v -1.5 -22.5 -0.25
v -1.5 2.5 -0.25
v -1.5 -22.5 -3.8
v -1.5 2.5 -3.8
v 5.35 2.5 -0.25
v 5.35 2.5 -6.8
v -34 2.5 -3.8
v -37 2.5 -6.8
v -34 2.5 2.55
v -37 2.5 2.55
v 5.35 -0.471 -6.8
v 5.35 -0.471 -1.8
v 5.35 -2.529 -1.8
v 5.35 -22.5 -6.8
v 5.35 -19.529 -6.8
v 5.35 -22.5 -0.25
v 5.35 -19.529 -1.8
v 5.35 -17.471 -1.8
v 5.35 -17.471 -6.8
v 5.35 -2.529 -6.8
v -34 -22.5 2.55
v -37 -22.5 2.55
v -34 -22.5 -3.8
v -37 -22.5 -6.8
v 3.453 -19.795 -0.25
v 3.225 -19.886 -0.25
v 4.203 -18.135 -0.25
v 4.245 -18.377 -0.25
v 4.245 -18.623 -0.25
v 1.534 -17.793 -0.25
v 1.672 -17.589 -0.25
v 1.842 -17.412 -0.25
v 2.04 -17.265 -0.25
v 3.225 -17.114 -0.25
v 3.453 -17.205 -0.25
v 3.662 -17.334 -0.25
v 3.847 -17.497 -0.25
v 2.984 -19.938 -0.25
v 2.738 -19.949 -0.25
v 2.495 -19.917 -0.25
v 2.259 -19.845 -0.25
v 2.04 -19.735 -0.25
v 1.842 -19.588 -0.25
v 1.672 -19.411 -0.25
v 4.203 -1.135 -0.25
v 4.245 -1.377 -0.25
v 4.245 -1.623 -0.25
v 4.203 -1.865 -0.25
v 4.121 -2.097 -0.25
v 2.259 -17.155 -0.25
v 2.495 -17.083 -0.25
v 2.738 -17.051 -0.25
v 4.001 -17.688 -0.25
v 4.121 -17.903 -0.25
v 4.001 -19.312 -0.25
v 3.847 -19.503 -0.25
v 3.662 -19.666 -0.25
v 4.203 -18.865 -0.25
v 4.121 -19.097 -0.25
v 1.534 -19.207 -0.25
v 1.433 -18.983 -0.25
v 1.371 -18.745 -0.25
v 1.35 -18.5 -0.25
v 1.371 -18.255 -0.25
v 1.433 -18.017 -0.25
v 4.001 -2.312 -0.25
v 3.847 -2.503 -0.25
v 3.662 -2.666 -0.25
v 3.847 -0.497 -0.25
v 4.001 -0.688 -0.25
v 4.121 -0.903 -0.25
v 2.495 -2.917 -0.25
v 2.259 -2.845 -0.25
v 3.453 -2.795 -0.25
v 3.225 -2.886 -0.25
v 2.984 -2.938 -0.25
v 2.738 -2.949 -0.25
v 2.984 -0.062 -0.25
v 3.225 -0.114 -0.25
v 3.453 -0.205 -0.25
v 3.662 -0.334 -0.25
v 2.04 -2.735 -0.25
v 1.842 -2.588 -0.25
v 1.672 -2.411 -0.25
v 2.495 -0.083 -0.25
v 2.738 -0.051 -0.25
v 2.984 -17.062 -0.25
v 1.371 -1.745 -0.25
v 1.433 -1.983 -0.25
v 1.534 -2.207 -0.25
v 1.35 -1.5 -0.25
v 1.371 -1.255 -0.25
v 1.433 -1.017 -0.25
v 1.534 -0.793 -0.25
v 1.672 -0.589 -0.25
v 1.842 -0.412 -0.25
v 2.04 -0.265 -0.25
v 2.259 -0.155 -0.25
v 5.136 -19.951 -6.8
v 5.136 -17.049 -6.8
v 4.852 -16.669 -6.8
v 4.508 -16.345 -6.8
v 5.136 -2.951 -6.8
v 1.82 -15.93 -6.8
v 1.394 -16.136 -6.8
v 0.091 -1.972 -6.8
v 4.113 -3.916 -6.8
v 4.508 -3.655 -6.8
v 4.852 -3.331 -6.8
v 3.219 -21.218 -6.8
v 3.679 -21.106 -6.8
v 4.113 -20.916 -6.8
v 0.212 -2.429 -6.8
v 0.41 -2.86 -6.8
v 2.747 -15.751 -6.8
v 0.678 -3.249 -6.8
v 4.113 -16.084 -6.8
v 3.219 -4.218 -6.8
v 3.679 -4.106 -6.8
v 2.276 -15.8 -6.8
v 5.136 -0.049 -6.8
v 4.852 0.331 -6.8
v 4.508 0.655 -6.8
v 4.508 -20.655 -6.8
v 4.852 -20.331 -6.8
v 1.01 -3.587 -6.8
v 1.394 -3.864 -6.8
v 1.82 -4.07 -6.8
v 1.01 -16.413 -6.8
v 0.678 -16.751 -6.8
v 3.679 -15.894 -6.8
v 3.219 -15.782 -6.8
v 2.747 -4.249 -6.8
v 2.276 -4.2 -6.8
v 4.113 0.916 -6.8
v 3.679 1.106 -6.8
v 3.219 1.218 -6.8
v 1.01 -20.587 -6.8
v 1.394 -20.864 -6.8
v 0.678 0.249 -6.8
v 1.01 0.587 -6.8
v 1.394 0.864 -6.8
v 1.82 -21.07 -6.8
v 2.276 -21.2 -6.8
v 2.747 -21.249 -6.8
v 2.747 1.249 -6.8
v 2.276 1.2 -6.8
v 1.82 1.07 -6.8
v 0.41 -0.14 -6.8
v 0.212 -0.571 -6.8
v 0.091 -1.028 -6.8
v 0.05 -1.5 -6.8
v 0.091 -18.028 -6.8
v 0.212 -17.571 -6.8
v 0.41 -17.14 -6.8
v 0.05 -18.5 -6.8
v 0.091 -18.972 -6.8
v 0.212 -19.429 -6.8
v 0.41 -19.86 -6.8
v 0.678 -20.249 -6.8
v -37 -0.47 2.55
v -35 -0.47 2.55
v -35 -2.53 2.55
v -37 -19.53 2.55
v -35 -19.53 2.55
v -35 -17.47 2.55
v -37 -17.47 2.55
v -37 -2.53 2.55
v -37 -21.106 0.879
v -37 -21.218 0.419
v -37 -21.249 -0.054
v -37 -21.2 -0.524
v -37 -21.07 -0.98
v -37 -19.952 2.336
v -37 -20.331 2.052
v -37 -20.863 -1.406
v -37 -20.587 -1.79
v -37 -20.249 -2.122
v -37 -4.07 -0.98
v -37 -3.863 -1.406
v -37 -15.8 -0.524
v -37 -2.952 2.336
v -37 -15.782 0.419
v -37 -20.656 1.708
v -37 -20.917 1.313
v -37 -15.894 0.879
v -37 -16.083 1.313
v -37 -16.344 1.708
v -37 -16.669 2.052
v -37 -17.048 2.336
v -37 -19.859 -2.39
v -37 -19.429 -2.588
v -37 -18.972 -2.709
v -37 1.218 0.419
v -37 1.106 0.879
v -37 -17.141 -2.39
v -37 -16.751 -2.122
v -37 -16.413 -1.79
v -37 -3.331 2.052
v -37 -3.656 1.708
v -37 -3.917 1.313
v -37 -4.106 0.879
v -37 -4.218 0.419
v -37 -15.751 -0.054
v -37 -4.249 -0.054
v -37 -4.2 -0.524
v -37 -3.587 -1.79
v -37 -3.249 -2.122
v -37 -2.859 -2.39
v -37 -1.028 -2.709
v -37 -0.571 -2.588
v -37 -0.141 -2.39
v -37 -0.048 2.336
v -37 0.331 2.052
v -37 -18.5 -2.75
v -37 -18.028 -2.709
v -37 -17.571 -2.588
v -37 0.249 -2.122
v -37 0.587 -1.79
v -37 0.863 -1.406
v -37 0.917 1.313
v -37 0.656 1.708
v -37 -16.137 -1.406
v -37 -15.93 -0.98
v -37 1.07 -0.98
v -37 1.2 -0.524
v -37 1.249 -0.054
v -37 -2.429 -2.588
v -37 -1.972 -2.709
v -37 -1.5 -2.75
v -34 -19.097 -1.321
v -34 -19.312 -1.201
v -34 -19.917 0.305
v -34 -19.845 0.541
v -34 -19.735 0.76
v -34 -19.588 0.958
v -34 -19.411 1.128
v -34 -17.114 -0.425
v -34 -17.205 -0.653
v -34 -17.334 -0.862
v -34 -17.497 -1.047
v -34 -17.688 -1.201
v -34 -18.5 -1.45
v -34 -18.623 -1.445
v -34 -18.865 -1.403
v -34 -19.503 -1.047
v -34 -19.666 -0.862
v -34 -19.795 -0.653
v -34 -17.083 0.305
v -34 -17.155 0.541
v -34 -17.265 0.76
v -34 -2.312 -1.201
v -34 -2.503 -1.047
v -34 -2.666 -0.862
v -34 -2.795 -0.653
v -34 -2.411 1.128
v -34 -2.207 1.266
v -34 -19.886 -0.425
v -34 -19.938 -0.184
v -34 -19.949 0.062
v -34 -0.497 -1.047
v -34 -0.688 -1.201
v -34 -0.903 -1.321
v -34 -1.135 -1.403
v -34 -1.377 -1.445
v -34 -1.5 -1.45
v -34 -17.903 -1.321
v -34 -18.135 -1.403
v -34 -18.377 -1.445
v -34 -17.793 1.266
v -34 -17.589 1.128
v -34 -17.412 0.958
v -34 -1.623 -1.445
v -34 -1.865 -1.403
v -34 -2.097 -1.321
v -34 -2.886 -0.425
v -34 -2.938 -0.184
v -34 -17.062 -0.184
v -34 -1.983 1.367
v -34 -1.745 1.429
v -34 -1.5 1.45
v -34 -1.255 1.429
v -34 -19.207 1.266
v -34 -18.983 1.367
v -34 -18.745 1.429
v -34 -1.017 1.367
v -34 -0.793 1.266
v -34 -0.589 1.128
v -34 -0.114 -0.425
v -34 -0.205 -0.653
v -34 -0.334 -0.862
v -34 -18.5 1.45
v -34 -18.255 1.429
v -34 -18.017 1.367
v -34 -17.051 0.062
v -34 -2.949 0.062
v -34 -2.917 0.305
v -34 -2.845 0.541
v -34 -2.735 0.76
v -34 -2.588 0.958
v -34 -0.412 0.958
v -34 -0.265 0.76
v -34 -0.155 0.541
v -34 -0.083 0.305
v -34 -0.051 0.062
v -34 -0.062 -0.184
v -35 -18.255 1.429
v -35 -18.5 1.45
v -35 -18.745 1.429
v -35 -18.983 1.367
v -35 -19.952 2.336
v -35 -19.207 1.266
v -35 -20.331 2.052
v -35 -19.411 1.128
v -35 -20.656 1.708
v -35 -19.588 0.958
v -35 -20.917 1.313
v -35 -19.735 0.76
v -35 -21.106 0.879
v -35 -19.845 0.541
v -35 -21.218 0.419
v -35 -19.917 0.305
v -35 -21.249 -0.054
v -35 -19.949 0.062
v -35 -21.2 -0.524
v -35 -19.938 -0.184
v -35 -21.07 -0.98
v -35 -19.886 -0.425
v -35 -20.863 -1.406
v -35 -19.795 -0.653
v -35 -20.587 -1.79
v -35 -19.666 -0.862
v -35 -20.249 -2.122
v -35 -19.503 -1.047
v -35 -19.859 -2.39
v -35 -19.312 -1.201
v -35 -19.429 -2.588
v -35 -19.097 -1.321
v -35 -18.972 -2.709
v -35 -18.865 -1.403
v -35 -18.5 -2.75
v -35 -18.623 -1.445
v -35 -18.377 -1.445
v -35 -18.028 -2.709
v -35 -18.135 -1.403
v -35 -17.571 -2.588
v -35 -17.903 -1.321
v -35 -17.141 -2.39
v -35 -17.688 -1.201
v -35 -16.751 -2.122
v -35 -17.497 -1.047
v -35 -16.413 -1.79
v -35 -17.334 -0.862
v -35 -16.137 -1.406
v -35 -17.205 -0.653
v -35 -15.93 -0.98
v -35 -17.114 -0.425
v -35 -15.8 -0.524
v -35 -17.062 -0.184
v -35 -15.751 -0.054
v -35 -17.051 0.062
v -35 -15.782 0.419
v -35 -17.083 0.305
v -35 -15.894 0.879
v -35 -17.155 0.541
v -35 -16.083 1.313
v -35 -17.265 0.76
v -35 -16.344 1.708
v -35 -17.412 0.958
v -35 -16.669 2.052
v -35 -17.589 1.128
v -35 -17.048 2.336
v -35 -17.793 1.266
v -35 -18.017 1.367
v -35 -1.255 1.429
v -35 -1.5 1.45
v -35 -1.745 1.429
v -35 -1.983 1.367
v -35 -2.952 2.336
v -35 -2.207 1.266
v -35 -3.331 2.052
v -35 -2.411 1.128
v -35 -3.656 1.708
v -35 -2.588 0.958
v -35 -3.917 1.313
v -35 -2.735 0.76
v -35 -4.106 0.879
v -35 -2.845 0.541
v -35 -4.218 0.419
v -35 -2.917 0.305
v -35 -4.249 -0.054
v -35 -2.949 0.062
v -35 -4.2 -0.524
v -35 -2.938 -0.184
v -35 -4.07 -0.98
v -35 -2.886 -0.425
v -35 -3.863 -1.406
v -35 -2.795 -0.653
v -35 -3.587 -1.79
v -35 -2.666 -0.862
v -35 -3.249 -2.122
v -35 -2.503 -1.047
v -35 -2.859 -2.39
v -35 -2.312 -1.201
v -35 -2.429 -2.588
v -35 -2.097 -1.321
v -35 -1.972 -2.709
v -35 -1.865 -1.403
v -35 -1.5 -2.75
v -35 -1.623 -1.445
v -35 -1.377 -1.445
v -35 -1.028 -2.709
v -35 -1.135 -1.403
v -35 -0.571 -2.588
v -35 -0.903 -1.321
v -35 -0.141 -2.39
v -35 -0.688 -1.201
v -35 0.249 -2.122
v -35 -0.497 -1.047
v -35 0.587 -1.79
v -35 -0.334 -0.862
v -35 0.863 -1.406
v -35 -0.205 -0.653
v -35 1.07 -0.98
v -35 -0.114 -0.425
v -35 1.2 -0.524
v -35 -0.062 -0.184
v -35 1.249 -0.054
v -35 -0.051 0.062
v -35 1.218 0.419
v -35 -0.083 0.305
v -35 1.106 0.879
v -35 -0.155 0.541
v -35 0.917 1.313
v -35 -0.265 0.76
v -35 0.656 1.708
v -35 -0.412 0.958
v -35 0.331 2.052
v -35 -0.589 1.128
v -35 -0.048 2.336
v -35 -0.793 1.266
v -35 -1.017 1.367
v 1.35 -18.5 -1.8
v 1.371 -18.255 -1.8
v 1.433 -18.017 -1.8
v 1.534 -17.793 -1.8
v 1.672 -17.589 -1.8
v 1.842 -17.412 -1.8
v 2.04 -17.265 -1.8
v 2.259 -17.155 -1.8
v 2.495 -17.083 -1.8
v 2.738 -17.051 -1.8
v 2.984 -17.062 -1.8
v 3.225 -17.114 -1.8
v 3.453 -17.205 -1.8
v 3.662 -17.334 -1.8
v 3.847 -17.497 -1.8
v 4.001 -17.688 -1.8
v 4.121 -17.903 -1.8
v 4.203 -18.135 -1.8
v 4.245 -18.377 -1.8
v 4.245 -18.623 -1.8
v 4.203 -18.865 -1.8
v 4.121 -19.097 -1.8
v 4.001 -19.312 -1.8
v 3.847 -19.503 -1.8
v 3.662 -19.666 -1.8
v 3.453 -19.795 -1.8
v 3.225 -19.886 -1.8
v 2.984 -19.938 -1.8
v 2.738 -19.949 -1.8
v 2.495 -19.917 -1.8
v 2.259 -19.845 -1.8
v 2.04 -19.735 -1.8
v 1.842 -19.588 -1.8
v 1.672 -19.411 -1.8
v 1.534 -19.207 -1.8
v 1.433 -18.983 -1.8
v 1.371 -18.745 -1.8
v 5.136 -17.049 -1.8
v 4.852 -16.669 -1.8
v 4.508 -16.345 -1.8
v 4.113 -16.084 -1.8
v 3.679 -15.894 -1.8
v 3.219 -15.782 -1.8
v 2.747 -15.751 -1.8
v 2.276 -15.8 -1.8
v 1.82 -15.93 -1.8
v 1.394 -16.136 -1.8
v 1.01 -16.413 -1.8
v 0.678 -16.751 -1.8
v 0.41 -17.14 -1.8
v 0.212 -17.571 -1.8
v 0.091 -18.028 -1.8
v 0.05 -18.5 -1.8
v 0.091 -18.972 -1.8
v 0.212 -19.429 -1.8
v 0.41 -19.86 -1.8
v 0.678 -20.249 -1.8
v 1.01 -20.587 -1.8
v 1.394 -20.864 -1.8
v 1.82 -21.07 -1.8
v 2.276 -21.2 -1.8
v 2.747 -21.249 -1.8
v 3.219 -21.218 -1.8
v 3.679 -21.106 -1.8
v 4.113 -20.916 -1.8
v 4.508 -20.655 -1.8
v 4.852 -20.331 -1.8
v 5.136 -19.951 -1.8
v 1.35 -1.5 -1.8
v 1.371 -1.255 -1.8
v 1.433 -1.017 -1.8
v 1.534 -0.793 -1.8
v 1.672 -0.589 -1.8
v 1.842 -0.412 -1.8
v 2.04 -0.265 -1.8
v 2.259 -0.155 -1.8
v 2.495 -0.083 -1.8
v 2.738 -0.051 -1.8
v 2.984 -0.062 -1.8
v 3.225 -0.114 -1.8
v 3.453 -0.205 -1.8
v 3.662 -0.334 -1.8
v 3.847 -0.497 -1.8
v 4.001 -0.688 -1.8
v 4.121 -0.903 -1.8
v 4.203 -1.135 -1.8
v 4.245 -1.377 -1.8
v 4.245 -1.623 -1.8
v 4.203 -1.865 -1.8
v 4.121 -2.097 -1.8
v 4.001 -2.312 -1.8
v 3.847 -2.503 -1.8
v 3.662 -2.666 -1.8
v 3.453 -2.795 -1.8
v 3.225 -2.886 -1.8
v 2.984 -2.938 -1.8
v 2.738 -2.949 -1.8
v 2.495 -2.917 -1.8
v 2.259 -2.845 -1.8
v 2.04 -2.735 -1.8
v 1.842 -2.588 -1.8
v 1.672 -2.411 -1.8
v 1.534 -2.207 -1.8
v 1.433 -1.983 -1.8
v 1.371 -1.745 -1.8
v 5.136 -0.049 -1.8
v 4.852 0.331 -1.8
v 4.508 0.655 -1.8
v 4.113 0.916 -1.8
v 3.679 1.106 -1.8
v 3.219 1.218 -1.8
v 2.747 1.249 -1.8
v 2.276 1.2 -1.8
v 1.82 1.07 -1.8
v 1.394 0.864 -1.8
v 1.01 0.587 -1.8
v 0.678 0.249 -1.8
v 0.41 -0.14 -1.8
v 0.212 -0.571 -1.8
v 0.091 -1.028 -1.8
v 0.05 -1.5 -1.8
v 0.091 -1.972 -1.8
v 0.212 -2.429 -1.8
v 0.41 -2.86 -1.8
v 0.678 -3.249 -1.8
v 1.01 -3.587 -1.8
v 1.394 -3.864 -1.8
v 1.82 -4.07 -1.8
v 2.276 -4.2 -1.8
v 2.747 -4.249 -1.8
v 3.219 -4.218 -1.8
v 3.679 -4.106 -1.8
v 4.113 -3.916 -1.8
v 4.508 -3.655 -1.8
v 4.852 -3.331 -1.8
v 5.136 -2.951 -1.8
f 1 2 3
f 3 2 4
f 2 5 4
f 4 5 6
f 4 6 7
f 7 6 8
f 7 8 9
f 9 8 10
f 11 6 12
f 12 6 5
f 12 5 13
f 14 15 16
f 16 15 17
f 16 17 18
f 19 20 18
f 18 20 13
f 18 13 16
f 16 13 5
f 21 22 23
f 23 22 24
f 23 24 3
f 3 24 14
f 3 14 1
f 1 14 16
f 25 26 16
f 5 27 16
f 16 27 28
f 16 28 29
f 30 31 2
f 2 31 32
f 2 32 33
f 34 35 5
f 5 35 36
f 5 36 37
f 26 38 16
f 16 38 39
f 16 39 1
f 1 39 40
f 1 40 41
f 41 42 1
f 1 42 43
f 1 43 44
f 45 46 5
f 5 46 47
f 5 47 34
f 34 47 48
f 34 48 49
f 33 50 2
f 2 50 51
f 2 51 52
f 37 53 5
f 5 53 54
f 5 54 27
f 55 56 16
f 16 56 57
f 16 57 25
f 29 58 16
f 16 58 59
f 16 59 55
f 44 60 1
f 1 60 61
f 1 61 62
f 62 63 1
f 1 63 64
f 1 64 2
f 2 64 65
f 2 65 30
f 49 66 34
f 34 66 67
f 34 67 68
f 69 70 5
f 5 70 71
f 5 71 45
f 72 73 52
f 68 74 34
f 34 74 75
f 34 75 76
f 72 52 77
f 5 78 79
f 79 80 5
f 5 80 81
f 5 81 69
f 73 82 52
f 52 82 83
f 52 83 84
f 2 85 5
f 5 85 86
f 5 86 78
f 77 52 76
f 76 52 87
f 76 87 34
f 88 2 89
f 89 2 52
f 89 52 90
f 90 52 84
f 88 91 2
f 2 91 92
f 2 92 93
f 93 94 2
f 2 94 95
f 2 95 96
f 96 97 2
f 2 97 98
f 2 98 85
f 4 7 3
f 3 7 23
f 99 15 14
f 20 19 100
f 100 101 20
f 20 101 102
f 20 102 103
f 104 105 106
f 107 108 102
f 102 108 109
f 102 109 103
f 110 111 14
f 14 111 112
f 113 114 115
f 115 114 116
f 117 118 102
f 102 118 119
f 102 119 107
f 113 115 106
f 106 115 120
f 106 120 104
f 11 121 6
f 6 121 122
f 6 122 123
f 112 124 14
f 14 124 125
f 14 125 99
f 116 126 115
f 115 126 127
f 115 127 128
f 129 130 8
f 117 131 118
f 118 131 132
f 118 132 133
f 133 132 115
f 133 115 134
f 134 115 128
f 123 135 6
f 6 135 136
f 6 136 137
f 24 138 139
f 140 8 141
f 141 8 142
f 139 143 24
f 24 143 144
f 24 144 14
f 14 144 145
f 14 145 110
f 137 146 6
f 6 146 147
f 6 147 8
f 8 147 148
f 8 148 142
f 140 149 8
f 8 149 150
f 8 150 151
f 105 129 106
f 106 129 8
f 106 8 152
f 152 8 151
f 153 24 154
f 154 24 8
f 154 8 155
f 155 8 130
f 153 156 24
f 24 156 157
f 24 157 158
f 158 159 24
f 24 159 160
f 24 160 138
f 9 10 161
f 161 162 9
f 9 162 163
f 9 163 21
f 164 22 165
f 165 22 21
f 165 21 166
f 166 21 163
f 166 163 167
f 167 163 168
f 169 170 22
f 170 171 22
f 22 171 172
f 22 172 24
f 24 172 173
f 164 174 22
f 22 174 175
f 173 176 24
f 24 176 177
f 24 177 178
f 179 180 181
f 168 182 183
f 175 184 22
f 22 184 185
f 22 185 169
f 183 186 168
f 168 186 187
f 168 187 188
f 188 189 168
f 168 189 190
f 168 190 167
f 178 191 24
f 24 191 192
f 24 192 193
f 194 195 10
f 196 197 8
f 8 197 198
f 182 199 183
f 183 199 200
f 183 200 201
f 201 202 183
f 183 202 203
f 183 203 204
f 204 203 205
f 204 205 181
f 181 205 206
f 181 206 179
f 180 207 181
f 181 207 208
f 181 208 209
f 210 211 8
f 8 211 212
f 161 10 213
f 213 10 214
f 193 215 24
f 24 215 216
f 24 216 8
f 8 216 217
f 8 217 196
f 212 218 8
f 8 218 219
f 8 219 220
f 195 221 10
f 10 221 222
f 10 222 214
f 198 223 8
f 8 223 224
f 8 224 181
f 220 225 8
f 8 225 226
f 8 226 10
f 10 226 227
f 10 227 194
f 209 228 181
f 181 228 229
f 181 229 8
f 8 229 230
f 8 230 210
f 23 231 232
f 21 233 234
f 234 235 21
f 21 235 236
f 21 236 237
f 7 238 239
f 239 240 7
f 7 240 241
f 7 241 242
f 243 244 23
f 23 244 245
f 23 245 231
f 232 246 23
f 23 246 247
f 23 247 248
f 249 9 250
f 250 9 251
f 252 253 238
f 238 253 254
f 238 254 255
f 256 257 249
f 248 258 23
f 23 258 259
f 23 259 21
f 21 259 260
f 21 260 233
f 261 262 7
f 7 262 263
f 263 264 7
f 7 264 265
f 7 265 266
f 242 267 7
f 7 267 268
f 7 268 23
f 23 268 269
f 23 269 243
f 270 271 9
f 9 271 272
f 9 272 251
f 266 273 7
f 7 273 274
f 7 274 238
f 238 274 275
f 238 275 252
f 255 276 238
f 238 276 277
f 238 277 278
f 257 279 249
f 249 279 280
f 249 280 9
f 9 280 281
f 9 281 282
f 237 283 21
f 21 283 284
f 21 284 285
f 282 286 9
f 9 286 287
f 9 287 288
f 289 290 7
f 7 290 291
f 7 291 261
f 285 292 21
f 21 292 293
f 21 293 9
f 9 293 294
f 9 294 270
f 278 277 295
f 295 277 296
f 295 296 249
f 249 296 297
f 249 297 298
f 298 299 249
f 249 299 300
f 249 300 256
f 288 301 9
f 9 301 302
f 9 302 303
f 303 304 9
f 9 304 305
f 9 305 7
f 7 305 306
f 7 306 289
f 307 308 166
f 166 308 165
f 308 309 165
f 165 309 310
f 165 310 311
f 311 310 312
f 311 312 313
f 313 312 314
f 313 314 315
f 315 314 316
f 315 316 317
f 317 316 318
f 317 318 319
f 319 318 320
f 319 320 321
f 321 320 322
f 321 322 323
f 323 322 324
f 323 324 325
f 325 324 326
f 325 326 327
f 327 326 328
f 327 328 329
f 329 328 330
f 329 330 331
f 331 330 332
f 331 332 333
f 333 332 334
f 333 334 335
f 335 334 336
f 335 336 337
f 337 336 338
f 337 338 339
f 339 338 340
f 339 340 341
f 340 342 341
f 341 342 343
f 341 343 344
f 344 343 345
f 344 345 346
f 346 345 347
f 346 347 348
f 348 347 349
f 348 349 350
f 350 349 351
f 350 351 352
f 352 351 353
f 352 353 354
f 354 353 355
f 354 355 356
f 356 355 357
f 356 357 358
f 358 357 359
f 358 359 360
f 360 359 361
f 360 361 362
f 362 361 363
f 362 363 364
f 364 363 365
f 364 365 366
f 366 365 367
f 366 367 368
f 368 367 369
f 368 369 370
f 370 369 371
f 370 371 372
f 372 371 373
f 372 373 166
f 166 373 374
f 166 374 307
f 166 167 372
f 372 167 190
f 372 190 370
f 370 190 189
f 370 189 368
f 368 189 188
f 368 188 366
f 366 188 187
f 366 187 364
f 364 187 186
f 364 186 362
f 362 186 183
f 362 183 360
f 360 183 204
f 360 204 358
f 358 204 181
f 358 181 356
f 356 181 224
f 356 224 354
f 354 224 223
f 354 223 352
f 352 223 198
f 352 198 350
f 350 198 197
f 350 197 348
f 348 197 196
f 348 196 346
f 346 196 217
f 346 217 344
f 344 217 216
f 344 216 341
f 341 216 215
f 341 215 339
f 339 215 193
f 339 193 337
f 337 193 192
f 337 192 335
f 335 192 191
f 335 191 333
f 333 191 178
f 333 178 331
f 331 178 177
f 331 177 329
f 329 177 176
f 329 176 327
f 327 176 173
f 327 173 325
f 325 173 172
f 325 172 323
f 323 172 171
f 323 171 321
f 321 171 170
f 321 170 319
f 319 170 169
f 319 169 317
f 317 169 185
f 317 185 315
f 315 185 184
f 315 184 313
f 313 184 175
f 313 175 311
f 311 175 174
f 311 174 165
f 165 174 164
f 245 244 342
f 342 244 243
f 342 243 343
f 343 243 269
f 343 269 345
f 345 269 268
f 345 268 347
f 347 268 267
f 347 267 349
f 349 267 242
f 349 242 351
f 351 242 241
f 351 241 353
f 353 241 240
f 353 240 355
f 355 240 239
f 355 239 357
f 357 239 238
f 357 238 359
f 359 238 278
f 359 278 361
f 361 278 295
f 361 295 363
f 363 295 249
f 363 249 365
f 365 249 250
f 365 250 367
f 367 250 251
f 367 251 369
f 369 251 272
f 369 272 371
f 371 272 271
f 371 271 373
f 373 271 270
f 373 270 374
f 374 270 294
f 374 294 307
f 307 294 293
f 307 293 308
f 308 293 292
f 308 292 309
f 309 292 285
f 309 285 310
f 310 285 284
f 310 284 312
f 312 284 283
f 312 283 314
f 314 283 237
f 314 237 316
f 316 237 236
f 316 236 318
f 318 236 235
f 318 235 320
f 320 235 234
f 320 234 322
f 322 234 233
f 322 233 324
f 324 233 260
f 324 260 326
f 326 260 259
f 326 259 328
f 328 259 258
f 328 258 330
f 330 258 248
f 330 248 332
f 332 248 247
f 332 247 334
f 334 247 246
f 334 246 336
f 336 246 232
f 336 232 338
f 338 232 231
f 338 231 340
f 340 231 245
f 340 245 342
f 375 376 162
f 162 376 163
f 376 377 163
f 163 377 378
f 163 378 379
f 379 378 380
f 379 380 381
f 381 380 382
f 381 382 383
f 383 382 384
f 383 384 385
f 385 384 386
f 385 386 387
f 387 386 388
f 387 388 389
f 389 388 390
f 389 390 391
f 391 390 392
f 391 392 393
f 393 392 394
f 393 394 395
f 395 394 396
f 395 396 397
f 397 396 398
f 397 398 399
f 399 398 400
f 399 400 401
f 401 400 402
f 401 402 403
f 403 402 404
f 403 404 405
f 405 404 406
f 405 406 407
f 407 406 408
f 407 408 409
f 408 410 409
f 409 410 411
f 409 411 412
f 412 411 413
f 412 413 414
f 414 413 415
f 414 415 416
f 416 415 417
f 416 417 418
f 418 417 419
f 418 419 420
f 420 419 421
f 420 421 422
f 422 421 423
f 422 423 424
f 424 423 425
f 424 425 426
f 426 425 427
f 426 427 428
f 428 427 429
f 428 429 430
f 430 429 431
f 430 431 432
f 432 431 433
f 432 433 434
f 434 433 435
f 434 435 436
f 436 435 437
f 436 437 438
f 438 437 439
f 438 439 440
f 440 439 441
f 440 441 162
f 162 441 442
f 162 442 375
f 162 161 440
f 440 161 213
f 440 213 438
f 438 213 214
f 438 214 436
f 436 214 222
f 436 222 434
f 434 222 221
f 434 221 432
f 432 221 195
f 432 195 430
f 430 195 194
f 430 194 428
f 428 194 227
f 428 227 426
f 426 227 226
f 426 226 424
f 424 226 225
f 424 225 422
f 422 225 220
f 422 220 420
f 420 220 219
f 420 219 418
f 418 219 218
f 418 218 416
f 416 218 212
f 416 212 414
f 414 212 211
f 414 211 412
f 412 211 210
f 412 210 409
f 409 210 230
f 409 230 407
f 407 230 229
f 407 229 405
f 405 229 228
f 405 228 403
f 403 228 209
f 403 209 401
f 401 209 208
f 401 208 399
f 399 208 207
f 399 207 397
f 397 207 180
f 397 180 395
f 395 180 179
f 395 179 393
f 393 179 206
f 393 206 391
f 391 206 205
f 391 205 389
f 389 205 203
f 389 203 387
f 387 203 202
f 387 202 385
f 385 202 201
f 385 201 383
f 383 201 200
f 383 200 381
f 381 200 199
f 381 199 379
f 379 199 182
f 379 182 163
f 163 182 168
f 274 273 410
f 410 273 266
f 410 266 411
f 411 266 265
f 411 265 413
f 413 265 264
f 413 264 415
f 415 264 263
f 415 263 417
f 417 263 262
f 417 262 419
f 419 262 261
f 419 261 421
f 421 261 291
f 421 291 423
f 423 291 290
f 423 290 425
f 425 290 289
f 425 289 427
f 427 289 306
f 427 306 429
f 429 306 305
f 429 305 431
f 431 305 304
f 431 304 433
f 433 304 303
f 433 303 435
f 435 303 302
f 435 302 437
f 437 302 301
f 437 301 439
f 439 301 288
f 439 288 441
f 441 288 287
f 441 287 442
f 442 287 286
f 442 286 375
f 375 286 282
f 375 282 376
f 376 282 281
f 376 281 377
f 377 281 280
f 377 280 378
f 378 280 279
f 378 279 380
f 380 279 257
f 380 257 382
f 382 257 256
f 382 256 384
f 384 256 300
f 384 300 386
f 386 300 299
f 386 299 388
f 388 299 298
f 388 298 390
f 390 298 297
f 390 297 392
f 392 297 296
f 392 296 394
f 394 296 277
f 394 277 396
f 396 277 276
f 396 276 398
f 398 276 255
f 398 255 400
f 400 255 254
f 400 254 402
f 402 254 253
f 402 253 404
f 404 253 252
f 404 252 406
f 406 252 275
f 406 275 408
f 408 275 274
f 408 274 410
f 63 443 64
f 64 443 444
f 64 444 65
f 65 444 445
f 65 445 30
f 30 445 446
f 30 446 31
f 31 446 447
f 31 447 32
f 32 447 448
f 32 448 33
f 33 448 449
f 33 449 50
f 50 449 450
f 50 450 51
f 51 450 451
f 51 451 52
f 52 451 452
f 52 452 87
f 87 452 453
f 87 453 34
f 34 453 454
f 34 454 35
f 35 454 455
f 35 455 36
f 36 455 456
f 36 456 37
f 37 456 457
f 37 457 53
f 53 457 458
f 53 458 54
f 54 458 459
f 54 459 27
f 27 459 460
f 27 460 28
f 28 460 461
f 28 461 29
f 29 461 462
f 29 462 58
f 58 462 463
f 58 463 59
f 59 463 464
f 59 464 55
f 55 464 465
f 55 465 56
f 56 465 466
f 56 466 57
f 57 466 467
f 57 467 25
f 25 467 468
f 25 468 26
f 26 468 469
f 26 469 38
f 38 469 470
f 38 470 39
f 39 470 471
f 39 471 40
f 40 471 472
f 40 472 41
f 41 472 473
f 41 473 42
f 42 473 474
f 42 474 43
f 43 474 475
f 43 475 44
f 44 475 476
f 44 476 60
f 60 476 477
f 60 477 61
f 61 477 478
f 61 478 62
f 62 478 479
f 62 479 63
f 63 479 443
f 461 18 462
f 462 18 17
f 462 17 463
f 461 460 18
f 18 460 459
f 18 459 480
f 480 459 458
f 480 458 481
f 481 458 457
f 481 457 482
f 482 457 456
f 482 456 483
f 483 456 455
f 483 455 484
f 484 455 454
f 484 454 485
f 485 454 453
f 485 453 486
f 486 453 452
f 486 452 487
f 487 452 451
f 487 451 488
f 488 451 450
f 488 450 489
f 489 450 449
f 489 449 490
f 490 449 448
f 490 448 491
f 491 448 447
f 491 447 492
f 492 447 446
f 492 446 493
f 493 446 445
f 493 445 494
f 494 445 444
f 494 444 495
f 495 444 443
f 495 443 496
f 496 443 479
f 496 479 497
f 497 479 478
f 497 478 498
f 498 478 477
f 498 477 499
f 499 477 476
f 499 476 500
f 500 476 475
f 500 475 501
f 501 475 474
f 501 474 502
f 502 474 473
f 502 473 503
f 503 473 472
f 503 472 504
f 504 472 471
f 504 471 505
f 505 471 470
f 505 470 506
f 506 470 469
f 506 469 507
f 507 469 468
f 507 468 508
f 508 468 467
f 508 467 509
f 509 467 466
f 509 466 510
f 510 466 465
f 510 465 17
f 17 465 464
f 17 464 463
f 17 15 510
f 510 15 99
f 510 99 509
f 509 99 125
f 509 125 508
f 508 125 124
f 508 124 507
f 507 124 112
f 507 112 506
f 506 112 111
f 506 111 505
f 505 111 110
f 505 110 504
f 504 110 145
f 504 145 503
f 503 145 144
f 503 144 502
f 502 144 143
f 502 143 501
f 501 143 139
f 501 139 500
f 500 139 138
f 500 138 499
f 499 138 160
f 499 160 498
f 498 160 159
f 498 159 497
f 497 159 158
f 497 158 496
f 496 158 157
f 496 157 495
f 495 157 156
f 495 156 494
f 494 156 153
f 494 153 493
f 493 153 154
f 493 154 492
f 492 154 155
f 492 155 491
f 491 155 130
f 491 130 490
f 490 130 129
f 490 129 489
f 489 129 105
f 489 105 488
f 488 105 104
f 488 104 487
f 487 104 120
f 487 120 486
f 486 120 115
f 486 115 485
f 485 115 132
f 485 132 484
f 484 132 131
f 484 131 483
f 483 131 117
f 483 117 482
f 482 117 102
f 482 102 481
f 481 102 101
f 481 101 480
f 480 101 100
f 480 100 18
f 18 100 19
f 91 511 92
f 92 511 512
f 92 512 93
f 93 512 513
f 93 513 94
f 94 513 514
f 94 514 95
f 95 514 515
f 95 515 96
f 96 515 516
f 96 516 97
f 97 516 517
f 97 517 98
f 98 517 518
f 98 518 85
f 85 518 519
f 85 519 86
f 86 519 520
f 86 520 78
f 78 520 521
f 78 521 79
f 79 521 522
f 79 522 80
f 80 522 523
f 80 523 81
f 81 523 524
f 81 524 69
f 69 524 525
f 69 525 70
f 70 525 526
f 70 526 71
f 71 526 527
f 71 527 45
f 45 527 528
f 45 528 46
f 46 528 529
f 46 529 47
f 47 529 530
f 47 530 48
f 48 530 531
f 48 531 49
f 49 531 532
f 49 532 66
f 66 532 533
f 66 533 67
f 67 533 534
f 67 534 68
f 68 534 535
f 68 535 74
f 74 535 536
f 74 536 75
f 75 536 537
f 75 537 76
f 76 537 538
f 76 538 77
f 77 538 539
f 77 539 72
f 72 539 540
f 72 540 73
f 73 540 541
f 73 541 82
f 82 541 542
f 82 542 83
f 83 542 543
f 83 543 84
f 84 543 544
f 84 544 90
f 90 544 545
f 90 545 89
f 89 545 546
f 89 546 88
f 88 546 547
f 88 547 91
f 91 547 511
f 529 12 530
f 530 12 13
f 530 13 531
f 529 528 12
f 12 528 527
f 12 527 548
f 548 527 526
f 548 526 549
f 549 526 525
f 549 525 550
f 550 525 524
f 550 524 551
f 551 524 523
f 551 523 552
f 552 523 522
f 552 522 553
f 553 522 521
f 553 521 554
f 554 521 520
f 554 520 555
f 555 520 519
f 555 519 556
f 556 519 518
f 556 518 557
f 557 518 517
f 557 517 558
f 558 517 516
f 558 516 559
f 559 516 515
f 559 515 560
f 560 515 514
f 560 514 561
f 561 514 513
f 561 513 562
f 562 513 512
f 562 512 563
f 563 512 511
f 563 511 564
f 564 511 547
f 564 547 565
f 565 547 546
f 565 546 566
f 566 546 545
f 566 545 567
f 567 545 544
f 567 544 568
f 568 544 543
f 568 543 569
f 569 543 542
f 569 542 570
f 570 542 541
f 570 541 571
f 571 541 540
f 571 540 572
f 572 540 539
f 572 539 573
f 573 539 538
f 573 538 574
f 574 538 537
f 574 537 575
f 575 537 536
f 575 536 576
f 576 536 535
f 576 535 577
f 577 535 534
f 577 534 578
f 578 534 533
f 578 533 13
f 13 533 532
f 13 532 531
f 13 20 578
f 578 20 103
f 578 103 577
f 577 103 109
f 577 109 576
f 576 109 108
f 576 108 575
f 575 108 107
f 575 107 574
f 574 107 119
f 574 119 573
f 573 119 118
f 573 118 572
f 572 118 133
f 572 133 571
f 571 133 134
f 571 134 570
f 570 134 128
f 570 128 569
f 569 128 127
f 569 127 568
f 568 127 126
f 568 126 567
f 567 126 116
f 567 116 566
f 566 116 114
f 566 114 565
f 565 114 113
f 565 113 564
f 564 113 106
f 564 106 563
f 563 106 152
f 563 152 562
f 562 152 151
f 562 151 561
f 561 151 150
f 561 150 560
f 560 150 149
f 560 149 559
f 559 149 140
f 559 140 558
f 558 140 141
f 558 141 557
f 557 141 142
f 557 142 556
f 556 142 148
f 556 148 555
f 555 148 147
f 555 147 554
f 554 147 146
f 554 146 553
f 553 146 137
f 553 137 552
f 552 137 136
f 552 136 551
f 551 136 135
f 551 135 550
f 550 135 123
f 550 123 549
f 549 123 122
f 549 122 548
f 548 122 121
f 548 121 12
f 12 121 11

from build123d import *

# Parameters (mm, degrees)
RESSALTO_EXTRUS_O2_START         = -0.25
ESBO_O2_W                        = 6.85008846
ESBO_O2_H                        = 25
RESSALTO_EXTRUS_O2_DEPTH         = 3.55
ESBO_O3_W                        = 39.35008846
ESBO_O3_H                        = 25
RESSALTO_EXTRUS_O3_DEPTH         = 3
ESBO_O4_W                        = 9.35
ESBO_O4_H                        = 25
RESSALTO_EXTRUS_O4_DEPTH         = 3
CBORE_FOR_M2_5_SHCS2_D           = 2.9
CBORE_FOR_M2_5_SHCS2_DEPTH       = 3
CBORE_FOR_M2_5_SHCS2_CBORE_D     = 5.5
CBORE_FOR_M2_5_SHCS2_CBORE_DEPTH = 2
CBORE_FOR_M2_5_SHCS2_TIP         = 0.871247898
CBORE_FOR_M2_5_SHCS3_D           = 2.9
CBORE_FOR_M2_5_SHCS3_CBORE_D     = 5.5
CBORE_FOR_M2_5_SHCS3_CBORE_DEPTH = 5


with BuildPart() as part:
    # Esboço2 → Ressalto-extrusão2 (new body)
    with BuildSketch(Plane.XY.offset(RESSALTO_EXTRUS_O2_START)):
        with Locations((1.92504423, -10)):
            Rectangle(ESBO_O2_W, ESBO_O2_H)
    extrude(amount=-RESSALTO_EXTRUS_O2_DEPTH)

    # Esboço3 → Ressalto-extrusão3 (add)
    with BuildSketch(Plane(origin=(0, 0, -3.8), x_dir=(-1, 0, 0), z_dir=(0, 0, -1))):
        with Locations((14.32495577, -10)):
            Rectangle(ESBO_O3_W, ESBO_O3_H)
    extrude(amount=RESSALTO_EXTRUS_O3_DEPTH)

    # Esboço4 → Ressalto-extrusão4 (add)
    with BuildSketch(Plane.ZY.offset(34)):
        with Locations((-2.125, -10)):
            Rectangle(ESBO_O4_W, ESBO_O4_H)
    extrude(amount=RESSALTO_EXTRUS_O4_DEPTH)

    # CBORE for M2.5 SHCS2
    with Locations(Plane(origin=(-37, -1.5, 0), x_dir=(0, 0, -1), z_dir=(-1, 0, 0))):
        with Locations((0, 0), (0, 17)):
            CounterBoreHole(CBORE_FOR_M2_5_SHCS2_D / 2, CBORE_FOR_M2_5_SHCS2_CBORE_D / 2, CBORE_FOR_M2_5_SHCS2_CBORE_DEPTH, depth=CBORE_FOR_M2_5_SHCS2_DEPTH)
            with Locations((0, 0, -(CBORE_FOR_M2_5_SHCS2_DEPTH + CBORE_FOR_M2_5_SHCS2_TIP / 2))):  # 118° drill point
                Cone(0, CBORE_FOR_M2_5_SHCS2_D / 2, CBORE_FOR_M2_5_SHCS2_TIP, mode=Mode.SUBTRACT)

    # CBORE for M2.5 SHCS3 (through all)
    with Locations(Plane(origin=(0, 0, -6.8), x_dir=(-1, 0, 0), z_dir=(0, 0, -1))):
        with Locations((-2.8, -1.5), (-2.8, -18.5)):
            CounterBoreHole(CBORE_FOR_M2_5_SHCS3_D / 2, CBORE_FOR_M2_5_SHCS3_CBORE_D / 2, CBORE_FOR_M2_5_SHCS3_CBORE_DEPTH)


solid = part.part
